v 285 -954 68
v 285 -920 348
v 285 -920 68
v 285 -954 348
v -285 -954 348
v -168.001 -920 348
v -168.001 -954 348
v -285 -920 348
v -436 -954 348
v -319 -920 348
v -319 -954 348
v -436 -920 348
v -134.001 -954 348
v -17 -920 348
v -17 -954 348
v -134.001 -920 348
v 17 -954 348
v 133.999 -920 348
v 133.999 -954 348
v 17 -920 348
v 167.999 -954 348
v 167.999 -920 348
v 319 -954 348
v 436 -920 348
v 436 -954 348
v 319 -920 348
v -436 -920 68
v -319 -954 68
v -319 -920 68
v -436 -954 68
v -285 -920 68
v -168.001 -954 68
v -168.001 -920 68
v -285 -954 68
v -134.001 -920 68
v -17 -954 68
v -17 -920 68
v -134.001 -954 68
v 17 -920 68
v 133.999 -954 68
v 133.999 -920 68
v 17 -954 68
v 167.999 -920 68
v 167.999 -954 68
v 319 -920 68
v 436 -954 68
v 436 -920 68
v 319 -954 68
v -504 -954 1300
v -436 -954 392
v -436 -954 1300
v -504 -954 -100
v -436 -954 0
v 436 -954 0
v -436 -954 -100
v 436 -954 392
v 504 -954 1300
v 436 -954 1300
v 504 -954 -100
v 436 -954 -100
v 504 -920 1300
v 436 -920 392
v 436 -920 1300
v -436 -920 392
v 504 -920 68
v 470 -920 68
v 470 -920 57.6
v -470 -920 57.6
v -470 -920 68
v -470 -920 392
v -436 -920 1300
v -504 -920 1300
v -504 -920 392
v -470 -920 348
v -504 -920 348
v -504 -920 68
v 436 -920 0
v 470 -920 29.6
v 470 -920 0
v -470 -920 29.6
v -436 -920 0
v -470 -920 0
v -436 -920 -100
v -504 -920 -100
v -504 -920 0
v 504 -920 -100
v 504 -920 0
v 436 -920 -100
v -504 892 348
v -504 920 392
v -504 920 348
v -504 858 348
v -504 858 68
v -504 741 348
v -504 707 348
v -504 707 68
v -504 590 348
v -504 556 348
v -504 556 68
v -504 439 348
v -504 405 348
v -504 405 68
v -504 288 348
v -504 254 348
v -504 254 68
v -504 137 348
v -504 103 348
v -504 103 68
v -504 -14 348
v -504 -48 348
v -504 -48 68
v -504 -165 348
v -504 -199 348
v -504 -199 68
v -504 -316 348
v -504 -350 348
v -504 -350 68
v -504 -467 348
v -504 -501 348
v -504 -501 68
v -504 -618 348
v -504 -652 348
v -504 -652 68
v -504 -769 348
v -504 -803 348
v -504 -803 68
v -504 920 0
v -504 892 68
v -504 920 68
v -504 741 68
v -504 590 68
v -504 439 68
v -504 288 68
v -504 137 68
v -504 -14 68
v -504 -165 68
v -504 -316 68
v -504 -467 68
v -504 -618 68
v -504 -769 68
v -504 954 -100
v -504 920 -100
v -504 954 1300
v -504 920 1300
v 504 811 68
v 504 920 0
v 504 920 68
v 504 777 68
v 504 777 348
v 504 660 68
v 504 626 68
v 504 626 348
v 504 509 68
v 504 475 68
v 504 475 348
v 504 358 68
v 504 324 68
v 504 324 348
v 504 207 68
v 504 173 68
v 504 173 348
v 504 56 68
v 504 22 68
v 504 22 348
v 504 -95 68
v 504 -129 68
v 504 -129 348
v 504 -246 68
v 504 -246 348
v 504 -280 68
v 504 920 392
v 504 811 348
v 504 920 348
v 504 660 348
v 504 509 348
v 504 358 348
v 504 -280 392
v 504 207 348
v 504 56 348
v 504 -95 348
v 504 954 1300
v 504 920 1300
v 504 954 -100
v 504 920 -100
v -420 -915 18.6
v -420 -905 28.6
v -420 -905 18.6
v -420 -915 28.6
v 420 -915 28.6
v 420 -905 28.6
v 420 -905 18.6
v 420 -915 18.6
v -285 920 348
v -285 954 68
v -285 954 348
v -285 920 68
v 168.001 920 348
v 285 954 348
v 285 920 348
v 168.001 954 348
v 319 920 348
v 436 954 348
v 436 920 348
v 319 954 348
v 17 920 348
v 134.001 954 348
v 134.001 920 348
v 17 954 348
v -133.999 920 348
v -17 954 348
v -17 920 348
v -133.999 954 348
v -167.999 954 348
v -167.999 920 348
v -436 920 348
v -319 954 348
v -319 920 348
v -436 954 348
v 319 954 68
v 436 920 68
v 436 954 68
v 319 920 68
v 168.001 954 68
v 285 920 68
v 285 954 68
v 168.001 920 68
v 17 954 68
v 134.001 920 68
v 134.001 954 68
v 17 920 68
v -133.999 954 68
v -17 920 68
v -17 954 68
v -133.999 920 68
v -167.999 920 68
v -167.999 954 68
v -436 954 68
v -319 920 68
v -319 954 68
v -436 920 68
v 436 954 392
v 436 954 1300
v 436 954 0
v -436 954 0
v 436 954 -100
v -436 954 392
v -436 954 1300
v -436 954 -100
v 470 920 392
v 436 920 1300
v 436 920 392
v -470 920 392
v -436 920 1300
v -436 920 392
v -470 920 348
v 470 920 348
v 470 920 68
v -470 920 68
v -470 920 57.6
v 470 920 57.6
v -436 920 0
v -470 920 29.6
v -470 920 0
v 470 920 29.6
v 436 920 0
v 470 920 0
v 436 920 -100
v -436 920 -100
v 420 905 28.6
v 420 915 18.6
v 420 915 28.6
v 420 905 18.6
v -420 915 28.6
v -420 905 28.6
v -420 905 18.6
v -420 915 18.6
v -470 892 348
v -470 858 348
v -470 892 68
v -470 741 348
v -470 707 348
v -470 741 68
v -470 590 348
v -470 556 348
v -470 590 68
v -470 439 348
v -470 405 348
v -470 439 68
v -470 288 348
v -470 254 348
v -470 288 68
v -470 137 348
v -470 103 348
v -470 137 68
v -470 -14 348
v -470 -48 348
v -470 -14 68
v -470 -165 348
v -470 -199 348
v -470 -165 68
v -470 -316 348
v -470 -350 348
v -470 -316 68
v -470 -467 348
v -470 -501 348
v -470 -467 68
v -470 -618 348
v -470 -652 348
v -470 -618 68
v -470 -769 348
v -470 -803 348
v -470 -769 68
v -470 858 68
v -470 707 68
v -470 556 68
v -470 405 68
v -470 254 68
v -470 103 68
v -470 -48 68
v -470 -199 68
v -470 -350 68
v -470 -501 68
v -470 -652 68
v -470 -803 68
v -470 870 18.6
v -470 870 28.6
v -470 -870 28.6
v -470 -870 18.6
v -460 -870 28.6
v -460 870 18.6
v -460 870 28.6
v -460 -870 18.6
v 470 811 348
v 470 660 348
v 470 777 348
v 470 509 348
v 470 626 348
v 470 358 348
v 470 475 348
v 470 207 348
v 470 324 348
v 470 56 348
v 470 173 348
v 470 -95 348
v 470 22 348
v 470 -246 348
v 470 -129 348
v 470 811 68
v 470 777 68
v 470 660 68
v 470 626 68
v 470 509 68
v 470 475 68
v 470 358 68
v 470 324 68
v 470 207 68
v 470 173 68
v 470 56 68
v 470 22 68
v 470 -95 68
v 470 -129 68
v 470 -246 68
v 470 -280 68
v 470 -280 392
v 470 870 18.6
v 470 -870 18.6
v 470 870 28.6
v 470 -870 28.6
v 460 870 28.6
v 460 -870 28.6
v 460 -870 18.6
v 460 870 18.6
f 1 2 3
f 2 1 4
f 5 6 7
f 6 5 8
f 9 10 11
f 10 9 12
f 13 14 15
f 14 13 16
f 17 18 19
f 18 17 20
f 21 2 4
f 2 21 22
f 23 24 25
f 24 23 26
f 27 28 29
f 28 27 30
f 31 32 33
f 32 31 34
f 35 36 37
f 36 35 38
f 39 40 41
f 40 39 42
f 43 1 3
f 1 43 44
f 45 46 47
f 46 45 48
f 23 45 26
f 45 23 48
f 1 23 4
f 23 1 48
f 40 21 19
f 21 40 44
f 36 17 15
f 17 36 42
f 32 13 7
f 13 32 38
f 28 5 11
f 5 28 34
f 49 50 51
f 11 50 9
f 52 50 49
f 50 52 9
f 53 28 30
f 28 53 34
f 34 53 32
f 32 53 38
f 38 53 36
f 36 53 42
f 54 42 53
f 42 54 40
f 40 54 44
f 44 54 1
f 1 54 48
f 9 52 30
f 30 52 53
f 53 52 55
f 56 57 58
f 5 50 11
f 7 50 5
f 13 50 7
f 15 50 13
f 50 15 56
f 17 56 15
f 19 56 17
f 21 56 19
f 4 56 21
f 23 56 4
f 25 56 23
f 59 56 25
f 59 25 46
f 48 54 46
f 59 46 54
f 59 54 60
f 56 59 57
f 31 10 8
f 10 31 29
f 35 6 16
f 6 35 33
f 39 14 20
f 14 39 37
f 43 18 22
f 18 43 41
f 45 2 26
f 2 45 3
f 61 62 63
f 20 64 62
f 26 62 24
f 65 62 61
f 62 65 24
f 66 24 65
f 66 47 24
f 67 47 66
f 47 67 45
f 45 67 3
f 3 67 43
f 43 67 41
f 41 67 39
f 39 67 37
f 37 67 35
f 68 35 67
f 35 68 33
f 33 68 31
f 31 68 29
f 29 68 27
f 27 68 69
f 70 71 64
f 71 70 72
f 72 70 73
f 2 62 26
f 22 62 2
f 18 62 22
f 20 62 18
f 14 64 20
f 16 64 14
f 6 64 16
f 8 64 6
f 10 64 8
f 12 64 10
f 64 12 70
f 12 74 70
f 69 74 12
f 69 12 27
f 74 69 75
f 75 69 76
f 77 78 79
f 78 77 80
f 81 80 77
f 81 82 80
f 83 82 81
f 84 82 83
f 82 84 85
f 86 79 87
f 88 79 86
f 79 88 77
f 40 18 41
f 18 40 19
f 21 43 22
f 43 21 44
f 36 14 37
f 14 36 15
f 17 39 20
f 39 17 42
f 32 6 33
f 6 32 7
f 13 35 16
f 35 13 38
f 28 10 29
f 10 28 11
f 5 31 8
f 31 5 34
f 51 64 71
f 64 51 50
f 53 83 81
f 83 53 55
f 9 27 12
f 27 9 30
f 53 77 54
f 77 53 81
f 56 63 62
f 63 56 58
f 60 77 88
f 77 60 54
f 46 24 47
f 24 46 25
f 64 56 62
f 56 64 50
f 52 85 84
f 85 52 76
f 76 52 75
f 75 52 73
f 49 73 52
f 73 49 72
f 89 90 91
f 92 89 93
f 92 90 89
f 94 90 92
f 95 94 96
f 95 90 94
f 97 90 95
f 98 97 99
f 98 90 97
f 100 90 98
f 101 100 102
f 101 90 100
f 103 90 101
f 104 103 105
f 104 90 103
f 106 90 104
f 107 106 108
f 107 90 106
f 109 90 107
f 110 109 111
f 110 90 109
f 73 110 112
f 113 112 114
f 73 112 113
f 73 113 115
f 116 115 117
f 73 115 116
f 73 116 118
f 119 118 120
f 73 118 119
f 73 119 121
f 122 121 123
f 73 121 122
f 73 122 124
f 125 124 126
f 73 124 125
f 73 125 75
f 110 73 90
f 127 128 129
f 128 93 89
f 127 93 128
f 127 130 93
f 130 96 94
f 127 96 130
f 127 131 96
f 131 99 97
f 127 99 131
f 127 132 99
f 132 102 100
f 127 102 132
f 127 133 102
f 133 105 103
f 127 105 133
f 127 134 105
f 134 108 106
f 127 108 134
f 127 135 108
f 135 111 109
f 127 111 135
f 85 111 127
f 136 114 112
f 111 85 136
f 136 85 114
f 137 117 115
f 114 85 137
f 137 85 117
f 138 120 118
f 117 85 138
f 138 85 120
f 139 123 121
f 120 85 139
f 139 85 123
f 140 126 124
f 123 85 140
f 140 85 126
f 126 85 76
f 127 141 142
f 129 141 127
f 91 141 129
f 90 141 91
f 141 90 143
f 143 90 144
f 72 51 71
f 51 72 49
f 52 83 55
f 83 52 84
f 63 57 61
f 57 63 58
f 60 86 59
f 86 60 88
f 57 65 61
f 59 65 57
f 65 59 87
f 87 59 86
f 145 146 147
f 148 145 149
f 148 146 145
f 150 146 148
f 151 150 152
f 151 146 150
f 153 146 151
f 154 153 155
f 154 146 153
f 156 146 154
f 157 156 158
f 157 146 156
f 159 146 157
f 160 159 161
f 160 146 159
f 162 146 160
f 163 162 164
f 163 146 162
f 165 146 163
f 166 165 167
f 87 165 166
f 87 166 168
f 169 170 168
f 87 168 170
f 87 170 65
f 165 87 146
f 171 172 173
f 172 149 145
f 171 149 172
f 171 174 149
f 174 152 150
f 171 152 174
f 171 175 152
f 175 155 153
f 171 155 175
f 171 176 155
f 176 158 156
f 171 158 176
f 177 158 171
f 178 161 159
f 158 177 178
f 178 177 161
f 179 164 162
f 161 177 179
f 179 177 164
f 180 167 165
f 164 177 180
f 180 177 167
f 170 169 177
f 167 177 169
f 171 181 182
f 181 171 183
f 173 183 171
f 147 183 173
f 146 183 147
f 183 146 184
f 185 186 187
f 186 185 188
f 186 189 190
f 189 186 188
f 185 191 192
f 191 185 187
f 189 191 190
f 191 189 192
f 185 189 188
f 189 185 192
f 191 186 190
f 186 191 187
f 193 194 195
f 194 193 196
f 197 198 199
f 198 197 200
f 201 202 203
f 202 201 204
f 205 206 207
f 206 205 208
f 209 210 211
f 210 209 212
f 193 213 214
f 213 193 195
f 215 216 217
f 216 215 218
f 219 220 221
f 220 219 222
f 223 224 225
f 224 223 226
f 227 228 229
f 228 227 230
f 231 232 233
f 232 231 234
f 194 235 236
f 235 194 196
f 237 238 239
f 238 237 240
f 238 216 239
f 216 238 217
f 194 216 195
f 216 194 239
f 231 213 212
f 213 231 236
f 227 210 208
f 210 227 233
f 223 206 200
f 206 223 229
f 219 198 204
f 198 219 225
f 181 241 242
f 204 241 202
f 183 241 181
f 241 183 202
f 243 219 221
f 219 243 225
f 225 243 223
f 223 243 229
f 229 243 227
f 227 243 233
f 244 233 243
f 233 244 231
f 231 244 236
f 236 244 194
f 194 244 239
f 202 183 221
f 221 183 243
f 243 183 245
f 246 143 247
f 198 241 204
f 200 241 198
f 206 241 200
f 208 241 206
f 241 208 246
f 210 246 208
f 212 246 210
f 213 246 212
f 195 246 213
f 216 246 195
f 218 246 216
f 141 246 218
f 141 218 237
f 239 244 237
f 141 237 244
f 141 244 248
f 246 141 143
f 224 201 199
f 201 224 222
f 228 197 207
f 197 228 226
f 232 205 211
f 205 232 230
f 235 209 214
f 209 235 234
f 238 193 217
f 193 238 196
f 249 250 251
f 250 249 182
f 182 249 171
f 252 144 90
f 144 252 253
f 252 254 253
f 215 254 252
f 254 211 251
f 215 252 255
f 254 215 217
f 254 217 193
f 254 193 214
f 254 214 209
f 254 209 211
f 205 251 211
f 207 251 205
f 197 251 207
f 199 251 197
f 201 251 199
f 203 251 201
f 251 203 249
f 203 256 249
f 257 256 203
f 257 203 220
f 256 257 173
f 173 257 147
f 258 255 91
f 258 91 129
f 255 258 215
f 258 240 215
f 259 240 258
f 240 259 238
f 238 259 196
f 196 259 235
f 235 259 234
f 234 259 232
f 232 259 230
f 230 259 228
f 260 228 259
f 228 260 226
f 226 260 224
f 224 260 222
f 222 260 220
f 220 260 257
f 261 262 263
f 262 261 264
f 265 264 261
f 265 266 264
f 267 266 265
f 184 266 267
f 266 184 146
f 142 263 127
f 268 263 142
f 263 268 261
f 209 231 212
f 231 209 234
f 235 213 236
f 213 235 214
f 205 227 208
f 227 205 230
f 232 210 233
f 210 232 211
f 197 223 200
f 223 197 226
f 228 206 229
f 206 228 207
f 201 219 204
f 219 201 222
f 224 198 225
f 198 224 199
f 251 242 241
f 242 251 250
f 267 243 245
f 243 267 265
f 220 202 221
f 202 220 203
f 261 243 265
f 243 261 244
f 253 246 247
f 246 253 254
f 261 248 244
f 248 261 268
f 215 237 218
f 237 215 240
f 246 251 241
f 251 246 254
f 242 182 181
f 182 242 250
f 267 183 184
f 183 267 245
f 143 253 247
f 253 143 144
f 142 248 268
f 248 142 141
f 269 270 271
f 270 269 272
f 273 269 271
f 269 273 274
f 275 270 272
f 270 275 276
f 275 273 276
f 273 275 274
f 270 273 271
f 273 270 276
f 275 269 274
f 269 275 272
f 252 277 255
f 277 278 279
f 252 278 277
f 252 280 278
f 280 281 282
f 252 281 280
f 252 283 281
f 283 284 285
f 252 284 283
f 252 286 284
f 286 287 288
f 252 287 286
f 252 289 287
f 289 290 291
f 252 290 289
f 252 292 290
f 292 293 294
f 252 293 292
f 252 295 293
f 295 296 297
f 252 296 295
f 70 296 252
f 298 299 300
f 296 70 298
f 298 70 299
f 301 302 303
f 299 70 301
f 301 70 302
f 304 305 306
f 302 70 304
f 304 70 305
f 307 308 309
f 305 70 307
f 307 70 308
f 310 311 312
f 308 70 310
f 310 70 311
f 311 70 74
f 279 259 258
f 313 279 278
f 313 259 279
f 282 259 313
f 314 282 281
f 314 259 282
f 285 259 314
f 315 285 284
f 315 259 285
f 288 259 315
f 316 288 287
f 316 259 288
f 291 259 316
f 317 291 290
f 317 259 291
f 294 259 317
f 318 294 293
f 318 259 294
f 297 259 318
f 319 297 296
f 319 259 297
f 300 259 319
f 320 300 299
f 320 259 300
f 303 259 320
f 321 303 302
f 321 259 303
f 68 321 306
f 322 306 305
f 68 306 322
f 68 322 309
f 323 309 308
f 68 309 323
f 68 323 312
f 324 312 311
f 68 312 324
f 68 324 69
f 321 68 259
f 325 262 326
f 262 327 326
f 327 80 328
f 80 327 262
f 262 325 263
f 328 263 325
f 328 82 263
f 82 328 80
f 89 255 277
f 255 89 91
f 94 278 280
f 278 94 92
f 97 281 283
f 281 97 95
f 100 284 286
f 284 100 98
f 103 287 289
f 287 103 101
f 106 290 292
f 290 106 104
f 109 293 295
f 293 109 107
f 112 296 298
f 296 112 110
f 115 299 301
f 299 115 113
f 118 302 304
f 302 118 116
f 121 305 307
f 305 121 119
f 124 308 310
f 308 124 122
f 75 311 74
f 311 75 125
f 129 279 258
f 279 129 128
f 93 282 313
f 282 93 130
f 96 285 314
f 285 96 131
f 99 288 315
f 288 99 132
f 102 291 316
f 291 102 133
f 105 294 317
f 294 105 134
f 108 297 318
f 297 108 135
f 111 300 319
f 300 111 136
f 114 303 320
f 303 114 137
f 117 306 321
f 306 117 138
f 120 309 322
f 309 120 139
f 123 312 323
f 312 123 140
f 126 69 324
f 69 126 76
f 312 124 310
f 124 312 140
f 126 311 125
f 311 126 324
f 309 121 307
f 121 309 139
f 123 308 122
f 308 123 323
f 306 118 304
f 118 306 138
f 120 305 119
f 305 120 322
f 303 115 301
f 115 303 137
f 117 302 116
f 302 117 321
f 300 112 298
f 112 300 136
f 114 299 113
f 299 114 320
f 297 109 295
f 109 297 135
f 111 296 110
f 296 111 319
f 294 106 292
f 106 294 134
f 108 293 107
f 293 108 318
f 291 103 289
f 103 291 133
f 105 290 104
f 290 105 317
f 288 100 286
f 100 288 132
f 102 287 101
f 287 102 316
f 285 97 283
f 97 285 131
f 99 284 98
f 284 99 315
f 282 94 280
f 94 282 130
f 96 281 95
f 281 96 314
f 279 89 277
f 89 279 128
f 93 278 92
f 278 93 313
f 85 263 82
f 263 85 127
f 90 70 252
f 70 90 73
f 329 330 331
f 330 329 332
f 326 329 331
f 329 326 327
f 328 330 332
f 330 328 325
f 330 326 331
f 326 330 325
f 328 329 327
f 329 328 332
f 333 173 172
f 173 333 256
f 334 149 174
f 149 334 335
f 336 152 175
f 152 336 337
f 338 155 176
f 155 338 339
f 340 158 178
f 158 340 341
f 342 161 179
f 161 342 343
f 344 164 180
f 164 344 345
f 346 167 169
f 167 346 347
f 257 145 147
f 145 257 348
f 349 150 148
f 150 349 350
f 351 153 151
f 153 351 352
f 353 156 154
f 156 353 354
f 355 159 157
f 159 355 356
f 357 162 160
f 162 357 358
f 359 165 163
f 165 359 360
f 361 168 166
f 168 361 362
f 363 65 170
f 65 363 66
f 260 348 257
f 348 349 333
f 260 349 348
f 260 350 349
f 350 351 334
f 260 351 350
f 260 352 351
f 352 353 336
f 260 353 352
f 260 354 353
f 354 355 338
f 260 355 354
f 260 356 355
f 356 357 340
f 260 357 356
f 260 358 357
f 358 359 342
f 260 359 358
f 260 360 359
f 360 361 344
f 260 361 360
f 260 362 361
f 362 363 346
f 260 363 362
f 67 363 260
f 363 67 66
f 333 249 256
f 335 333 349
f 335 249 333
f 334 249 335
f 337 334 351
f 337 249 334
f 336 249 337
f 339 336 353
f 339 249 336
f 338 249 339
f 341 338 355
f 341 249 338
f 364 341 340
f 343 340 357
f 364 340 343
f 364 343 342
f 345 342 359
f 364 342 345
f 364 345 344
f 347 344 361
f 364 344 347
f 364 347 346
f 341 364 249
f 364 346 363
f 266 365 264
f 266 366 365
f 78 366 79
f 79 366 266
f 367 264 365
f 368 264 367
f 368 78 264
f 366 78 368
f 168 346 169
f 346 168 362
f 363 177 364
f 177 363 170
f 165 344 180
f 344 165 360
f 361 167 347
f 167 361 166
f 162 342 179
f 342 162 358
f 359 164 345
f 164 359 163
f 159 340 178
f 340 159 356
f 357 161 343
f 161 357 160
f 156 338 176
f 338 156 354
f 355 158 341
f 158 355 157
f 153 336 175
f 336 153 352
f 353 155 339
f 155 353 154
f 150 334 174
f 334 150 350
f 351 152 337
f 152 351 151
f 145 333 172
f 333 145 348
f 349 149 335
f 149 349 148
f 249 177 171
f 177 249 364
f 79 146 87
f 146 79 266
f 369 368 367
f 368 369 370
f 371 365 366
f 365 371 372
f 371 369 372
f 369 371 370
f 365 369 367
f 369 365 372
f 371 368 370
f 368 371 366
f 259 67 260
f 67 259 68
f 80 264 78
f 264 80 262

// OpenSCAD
// factory parts

// mattress board
// main structure holding mattress board
// all-round fence
// house structure

// REMINDERS
// - subtract 0.001 units to guarantee items form a single object
// - rotate first, translate later
// - buld pieces centered so rotation is more intuitive
// - increase resolution using
//     $fa = 1;
//     $fs = 0.4;


bed_board_width=940;   // 0.94m
bed_board_length=1840; // 1.84m
bed_board_height=28;


// PART MODULES


// fence common
//https://www.bricomart.es/liston-abeto-cepillado-2400-x-68-x-34-mm.html
//https://www.bricomart.es/liston-abeto-cepillado-2400-x-34-x-34-mm.html
fence_rail_width=34;
fence_rail_height=44;  // !! 
fence_main_width=34;
fence_main_height=68;
fence_bar_width=34;
fence_bar_height=fence_bar_width;
fence_bar_length=280; // 28cm

// both W and H are equivalent
board_support = 10 ; 

fence_rail_entrance_length=1200;


main_leg_width=34;
main_leg_height=68;
main_leg_length=1400;

height_from_floor= 100;

header_length=bed_board_width - main_leg_height;

// the separation between fence bars is determined by 
// the aesthetics of the head/foot fence. If the head/foot 
// fence looks nicer with 6 voids (5 bars), then that separation
// will govern all the bed fences
fence_bar_separation=(header_length+fence_bar_width)/6 ; // 188



module fence_bar() {
        cube(
       [
        fence_bar_width,  // x
        fence_bar_height, // y
        fence_bar_length  // z
        ],
       center=true);
}

// 1. head/foot fence
module head_foot_fence() {
  // fence main
  translate([0,0, -1*((fence_bar_length + fence_main_height)/2)])
    cube([
        header_length,   // x
        fence_main_width,  // y 
        fence_main_height  // z
        ],
       center=true);

  // fence rail
  translate([0,0, ((fence_bar_length + fence_rail_height)/2)])
    cube(
       [
        header_length,   // x
        fence_rail_width,  // y 
        fence_rail_height  // z
        ],
       center=true);

  // fence bars
  x=header_length+fence_bar_width - 0.001;
  for (dx=[ -x/2 + fence_bar_separation :fence_bar_separation: x/2]) {
    color("green")
      translate([dx, 0, 0])
        fence_bar();
  }

}


// 2. wall fence
module wall_fence() {
  // fence main
  translate([0,0, -1*((fence_bar_length + fence_main_height)/2)])
   rotate([0,0,90])
    cube([
        bed_board_length,   // x
        fence_main_width,  // y 
        fence_main_height  // z
        ],
       center=true);

  // fence rail
  translate([0,0, ((fence_bar_length + fence_rail_height)/2)])
   rotate([0,0,90])
    cube(
       [
        bed_board_length,   // x
        fence_rail_width,  // y 
        fence_rail_height  // z
        ],
       center=true);

  // fence bars
  x=bed_board_length+fence_bar_width;
  for (dy=[ -x/2 + fence_bar_separation :fence_bar_separation: x/2]) {
    color("green")
     translate([0, dy, 0])
      fence_bar();
  }
  
  wall_support_up = -( fence_bar_length/2+fence_main_height)+board_up;
  color("cyan")
   translate([fence_main_width/2+board_support/2, 0, wall_support_up])
      cube([
        board_support,   // x
        bed_board_length-100,  // y 
        board_support  // z
        ],
       center=true);
}


// 3. entrance fence
module entrance_fence_rail() {
  // fence rail
  translate([0, 0, ((fence_bar_length + fence_rail_height)/2)])
   rotate([0,0,90])
    cube(
       [
        fence_rail_entrance_length,   // x
        fence_rail_width,  // y 
        fence_rail_height  // z
        ],
       center=true);

  // fence bars
  start = (fence_rail_entrance_length-fence_rail_width)/2;
  end = start;
  for (dy=[ -start :fence_bar_separation: end]) {
    color("green")
     translate([0, dy, 0])
      fence_bar();
  }
}

module entrance_fence() {
  // fence main
  translate([0,0, -1*((fence_bar_length + fence_main_height)/2)])
   rotate([0,0,90])
    cube([
        bed_board_length,   // x
        fence_main_width,  // y 
        fence_main_height  // z
        ],
       center=true);
  translate([0,(bed_board_length-fence_rail_entrance_length)/2,0])
    entrance_fence_rail();

  wall_support_up = -( fence_bar_length/2+fence_main_height)+board_up;
  color("cyan")
   translate([-(fence_main_width+board_support)/2, 0, wall_support_up])
      cube([
        board_support,   // x
        bed_board_length-100,  // y 
        board_support  // z
        ],
       center=true);
}
module bed_board () {
    
  color("red")
    cube([
        bed_board_width,   // x
        bed_board_length,  // y 
        bed_board_height  // z
        ],
       center=true);
    
}


fence_up=fence_bar_length/2+fence_main_height;
board_up=board_support+main_leg_height/5;

module header() {
  translate([ 0, 0 , fence_up])
    head_foot_fence();
    
  // side legs
  up = main_leg_length/2 - height_from_floor  ;
  translate([ header_length/2 + main_leg_height/2, 0 ,  up])
    cube([
        main_leg_height,   // x
        main_leg_width,  // y 
        main_leg_length  // z
        ],
       center=true);
  translate([ -(bed_board_width)/2, 0 ,  up])
    cube([
        main_leg_height,   // x
        main_leg_width,  // y 
        main_leg_length  // z
        ],
       center=true);

  color("cyan")
   translate([0, -(fence_main_width/2 + board_support), board_up])
      cube([
        bed_board_width -100,   // x
        board_support,  // y 
        board_support  // z
        ],
       center=true);

}

module footer() {
  rotate([0,0,180])
    header();
}

module full_bed(){
  translate([0, -(bed_board_length+fence_bar_width)/2, 0])
    footer();
  translate([0, (bed_board_length+fence_bar_width)/2, 0])
    header();
  translate([-(bed_board_width + main_leg_height/2)/2, 0, fence_up])
    wall_fence();
  translate([(bed_board_width + main_leg_height/2)/2, 0, fence_up])
    entrance_fence();
    
  translate([0, 0, board_up + bed_board_height/2 + board_support/2 +1 ])
    bed_board();
}




full_bed();
